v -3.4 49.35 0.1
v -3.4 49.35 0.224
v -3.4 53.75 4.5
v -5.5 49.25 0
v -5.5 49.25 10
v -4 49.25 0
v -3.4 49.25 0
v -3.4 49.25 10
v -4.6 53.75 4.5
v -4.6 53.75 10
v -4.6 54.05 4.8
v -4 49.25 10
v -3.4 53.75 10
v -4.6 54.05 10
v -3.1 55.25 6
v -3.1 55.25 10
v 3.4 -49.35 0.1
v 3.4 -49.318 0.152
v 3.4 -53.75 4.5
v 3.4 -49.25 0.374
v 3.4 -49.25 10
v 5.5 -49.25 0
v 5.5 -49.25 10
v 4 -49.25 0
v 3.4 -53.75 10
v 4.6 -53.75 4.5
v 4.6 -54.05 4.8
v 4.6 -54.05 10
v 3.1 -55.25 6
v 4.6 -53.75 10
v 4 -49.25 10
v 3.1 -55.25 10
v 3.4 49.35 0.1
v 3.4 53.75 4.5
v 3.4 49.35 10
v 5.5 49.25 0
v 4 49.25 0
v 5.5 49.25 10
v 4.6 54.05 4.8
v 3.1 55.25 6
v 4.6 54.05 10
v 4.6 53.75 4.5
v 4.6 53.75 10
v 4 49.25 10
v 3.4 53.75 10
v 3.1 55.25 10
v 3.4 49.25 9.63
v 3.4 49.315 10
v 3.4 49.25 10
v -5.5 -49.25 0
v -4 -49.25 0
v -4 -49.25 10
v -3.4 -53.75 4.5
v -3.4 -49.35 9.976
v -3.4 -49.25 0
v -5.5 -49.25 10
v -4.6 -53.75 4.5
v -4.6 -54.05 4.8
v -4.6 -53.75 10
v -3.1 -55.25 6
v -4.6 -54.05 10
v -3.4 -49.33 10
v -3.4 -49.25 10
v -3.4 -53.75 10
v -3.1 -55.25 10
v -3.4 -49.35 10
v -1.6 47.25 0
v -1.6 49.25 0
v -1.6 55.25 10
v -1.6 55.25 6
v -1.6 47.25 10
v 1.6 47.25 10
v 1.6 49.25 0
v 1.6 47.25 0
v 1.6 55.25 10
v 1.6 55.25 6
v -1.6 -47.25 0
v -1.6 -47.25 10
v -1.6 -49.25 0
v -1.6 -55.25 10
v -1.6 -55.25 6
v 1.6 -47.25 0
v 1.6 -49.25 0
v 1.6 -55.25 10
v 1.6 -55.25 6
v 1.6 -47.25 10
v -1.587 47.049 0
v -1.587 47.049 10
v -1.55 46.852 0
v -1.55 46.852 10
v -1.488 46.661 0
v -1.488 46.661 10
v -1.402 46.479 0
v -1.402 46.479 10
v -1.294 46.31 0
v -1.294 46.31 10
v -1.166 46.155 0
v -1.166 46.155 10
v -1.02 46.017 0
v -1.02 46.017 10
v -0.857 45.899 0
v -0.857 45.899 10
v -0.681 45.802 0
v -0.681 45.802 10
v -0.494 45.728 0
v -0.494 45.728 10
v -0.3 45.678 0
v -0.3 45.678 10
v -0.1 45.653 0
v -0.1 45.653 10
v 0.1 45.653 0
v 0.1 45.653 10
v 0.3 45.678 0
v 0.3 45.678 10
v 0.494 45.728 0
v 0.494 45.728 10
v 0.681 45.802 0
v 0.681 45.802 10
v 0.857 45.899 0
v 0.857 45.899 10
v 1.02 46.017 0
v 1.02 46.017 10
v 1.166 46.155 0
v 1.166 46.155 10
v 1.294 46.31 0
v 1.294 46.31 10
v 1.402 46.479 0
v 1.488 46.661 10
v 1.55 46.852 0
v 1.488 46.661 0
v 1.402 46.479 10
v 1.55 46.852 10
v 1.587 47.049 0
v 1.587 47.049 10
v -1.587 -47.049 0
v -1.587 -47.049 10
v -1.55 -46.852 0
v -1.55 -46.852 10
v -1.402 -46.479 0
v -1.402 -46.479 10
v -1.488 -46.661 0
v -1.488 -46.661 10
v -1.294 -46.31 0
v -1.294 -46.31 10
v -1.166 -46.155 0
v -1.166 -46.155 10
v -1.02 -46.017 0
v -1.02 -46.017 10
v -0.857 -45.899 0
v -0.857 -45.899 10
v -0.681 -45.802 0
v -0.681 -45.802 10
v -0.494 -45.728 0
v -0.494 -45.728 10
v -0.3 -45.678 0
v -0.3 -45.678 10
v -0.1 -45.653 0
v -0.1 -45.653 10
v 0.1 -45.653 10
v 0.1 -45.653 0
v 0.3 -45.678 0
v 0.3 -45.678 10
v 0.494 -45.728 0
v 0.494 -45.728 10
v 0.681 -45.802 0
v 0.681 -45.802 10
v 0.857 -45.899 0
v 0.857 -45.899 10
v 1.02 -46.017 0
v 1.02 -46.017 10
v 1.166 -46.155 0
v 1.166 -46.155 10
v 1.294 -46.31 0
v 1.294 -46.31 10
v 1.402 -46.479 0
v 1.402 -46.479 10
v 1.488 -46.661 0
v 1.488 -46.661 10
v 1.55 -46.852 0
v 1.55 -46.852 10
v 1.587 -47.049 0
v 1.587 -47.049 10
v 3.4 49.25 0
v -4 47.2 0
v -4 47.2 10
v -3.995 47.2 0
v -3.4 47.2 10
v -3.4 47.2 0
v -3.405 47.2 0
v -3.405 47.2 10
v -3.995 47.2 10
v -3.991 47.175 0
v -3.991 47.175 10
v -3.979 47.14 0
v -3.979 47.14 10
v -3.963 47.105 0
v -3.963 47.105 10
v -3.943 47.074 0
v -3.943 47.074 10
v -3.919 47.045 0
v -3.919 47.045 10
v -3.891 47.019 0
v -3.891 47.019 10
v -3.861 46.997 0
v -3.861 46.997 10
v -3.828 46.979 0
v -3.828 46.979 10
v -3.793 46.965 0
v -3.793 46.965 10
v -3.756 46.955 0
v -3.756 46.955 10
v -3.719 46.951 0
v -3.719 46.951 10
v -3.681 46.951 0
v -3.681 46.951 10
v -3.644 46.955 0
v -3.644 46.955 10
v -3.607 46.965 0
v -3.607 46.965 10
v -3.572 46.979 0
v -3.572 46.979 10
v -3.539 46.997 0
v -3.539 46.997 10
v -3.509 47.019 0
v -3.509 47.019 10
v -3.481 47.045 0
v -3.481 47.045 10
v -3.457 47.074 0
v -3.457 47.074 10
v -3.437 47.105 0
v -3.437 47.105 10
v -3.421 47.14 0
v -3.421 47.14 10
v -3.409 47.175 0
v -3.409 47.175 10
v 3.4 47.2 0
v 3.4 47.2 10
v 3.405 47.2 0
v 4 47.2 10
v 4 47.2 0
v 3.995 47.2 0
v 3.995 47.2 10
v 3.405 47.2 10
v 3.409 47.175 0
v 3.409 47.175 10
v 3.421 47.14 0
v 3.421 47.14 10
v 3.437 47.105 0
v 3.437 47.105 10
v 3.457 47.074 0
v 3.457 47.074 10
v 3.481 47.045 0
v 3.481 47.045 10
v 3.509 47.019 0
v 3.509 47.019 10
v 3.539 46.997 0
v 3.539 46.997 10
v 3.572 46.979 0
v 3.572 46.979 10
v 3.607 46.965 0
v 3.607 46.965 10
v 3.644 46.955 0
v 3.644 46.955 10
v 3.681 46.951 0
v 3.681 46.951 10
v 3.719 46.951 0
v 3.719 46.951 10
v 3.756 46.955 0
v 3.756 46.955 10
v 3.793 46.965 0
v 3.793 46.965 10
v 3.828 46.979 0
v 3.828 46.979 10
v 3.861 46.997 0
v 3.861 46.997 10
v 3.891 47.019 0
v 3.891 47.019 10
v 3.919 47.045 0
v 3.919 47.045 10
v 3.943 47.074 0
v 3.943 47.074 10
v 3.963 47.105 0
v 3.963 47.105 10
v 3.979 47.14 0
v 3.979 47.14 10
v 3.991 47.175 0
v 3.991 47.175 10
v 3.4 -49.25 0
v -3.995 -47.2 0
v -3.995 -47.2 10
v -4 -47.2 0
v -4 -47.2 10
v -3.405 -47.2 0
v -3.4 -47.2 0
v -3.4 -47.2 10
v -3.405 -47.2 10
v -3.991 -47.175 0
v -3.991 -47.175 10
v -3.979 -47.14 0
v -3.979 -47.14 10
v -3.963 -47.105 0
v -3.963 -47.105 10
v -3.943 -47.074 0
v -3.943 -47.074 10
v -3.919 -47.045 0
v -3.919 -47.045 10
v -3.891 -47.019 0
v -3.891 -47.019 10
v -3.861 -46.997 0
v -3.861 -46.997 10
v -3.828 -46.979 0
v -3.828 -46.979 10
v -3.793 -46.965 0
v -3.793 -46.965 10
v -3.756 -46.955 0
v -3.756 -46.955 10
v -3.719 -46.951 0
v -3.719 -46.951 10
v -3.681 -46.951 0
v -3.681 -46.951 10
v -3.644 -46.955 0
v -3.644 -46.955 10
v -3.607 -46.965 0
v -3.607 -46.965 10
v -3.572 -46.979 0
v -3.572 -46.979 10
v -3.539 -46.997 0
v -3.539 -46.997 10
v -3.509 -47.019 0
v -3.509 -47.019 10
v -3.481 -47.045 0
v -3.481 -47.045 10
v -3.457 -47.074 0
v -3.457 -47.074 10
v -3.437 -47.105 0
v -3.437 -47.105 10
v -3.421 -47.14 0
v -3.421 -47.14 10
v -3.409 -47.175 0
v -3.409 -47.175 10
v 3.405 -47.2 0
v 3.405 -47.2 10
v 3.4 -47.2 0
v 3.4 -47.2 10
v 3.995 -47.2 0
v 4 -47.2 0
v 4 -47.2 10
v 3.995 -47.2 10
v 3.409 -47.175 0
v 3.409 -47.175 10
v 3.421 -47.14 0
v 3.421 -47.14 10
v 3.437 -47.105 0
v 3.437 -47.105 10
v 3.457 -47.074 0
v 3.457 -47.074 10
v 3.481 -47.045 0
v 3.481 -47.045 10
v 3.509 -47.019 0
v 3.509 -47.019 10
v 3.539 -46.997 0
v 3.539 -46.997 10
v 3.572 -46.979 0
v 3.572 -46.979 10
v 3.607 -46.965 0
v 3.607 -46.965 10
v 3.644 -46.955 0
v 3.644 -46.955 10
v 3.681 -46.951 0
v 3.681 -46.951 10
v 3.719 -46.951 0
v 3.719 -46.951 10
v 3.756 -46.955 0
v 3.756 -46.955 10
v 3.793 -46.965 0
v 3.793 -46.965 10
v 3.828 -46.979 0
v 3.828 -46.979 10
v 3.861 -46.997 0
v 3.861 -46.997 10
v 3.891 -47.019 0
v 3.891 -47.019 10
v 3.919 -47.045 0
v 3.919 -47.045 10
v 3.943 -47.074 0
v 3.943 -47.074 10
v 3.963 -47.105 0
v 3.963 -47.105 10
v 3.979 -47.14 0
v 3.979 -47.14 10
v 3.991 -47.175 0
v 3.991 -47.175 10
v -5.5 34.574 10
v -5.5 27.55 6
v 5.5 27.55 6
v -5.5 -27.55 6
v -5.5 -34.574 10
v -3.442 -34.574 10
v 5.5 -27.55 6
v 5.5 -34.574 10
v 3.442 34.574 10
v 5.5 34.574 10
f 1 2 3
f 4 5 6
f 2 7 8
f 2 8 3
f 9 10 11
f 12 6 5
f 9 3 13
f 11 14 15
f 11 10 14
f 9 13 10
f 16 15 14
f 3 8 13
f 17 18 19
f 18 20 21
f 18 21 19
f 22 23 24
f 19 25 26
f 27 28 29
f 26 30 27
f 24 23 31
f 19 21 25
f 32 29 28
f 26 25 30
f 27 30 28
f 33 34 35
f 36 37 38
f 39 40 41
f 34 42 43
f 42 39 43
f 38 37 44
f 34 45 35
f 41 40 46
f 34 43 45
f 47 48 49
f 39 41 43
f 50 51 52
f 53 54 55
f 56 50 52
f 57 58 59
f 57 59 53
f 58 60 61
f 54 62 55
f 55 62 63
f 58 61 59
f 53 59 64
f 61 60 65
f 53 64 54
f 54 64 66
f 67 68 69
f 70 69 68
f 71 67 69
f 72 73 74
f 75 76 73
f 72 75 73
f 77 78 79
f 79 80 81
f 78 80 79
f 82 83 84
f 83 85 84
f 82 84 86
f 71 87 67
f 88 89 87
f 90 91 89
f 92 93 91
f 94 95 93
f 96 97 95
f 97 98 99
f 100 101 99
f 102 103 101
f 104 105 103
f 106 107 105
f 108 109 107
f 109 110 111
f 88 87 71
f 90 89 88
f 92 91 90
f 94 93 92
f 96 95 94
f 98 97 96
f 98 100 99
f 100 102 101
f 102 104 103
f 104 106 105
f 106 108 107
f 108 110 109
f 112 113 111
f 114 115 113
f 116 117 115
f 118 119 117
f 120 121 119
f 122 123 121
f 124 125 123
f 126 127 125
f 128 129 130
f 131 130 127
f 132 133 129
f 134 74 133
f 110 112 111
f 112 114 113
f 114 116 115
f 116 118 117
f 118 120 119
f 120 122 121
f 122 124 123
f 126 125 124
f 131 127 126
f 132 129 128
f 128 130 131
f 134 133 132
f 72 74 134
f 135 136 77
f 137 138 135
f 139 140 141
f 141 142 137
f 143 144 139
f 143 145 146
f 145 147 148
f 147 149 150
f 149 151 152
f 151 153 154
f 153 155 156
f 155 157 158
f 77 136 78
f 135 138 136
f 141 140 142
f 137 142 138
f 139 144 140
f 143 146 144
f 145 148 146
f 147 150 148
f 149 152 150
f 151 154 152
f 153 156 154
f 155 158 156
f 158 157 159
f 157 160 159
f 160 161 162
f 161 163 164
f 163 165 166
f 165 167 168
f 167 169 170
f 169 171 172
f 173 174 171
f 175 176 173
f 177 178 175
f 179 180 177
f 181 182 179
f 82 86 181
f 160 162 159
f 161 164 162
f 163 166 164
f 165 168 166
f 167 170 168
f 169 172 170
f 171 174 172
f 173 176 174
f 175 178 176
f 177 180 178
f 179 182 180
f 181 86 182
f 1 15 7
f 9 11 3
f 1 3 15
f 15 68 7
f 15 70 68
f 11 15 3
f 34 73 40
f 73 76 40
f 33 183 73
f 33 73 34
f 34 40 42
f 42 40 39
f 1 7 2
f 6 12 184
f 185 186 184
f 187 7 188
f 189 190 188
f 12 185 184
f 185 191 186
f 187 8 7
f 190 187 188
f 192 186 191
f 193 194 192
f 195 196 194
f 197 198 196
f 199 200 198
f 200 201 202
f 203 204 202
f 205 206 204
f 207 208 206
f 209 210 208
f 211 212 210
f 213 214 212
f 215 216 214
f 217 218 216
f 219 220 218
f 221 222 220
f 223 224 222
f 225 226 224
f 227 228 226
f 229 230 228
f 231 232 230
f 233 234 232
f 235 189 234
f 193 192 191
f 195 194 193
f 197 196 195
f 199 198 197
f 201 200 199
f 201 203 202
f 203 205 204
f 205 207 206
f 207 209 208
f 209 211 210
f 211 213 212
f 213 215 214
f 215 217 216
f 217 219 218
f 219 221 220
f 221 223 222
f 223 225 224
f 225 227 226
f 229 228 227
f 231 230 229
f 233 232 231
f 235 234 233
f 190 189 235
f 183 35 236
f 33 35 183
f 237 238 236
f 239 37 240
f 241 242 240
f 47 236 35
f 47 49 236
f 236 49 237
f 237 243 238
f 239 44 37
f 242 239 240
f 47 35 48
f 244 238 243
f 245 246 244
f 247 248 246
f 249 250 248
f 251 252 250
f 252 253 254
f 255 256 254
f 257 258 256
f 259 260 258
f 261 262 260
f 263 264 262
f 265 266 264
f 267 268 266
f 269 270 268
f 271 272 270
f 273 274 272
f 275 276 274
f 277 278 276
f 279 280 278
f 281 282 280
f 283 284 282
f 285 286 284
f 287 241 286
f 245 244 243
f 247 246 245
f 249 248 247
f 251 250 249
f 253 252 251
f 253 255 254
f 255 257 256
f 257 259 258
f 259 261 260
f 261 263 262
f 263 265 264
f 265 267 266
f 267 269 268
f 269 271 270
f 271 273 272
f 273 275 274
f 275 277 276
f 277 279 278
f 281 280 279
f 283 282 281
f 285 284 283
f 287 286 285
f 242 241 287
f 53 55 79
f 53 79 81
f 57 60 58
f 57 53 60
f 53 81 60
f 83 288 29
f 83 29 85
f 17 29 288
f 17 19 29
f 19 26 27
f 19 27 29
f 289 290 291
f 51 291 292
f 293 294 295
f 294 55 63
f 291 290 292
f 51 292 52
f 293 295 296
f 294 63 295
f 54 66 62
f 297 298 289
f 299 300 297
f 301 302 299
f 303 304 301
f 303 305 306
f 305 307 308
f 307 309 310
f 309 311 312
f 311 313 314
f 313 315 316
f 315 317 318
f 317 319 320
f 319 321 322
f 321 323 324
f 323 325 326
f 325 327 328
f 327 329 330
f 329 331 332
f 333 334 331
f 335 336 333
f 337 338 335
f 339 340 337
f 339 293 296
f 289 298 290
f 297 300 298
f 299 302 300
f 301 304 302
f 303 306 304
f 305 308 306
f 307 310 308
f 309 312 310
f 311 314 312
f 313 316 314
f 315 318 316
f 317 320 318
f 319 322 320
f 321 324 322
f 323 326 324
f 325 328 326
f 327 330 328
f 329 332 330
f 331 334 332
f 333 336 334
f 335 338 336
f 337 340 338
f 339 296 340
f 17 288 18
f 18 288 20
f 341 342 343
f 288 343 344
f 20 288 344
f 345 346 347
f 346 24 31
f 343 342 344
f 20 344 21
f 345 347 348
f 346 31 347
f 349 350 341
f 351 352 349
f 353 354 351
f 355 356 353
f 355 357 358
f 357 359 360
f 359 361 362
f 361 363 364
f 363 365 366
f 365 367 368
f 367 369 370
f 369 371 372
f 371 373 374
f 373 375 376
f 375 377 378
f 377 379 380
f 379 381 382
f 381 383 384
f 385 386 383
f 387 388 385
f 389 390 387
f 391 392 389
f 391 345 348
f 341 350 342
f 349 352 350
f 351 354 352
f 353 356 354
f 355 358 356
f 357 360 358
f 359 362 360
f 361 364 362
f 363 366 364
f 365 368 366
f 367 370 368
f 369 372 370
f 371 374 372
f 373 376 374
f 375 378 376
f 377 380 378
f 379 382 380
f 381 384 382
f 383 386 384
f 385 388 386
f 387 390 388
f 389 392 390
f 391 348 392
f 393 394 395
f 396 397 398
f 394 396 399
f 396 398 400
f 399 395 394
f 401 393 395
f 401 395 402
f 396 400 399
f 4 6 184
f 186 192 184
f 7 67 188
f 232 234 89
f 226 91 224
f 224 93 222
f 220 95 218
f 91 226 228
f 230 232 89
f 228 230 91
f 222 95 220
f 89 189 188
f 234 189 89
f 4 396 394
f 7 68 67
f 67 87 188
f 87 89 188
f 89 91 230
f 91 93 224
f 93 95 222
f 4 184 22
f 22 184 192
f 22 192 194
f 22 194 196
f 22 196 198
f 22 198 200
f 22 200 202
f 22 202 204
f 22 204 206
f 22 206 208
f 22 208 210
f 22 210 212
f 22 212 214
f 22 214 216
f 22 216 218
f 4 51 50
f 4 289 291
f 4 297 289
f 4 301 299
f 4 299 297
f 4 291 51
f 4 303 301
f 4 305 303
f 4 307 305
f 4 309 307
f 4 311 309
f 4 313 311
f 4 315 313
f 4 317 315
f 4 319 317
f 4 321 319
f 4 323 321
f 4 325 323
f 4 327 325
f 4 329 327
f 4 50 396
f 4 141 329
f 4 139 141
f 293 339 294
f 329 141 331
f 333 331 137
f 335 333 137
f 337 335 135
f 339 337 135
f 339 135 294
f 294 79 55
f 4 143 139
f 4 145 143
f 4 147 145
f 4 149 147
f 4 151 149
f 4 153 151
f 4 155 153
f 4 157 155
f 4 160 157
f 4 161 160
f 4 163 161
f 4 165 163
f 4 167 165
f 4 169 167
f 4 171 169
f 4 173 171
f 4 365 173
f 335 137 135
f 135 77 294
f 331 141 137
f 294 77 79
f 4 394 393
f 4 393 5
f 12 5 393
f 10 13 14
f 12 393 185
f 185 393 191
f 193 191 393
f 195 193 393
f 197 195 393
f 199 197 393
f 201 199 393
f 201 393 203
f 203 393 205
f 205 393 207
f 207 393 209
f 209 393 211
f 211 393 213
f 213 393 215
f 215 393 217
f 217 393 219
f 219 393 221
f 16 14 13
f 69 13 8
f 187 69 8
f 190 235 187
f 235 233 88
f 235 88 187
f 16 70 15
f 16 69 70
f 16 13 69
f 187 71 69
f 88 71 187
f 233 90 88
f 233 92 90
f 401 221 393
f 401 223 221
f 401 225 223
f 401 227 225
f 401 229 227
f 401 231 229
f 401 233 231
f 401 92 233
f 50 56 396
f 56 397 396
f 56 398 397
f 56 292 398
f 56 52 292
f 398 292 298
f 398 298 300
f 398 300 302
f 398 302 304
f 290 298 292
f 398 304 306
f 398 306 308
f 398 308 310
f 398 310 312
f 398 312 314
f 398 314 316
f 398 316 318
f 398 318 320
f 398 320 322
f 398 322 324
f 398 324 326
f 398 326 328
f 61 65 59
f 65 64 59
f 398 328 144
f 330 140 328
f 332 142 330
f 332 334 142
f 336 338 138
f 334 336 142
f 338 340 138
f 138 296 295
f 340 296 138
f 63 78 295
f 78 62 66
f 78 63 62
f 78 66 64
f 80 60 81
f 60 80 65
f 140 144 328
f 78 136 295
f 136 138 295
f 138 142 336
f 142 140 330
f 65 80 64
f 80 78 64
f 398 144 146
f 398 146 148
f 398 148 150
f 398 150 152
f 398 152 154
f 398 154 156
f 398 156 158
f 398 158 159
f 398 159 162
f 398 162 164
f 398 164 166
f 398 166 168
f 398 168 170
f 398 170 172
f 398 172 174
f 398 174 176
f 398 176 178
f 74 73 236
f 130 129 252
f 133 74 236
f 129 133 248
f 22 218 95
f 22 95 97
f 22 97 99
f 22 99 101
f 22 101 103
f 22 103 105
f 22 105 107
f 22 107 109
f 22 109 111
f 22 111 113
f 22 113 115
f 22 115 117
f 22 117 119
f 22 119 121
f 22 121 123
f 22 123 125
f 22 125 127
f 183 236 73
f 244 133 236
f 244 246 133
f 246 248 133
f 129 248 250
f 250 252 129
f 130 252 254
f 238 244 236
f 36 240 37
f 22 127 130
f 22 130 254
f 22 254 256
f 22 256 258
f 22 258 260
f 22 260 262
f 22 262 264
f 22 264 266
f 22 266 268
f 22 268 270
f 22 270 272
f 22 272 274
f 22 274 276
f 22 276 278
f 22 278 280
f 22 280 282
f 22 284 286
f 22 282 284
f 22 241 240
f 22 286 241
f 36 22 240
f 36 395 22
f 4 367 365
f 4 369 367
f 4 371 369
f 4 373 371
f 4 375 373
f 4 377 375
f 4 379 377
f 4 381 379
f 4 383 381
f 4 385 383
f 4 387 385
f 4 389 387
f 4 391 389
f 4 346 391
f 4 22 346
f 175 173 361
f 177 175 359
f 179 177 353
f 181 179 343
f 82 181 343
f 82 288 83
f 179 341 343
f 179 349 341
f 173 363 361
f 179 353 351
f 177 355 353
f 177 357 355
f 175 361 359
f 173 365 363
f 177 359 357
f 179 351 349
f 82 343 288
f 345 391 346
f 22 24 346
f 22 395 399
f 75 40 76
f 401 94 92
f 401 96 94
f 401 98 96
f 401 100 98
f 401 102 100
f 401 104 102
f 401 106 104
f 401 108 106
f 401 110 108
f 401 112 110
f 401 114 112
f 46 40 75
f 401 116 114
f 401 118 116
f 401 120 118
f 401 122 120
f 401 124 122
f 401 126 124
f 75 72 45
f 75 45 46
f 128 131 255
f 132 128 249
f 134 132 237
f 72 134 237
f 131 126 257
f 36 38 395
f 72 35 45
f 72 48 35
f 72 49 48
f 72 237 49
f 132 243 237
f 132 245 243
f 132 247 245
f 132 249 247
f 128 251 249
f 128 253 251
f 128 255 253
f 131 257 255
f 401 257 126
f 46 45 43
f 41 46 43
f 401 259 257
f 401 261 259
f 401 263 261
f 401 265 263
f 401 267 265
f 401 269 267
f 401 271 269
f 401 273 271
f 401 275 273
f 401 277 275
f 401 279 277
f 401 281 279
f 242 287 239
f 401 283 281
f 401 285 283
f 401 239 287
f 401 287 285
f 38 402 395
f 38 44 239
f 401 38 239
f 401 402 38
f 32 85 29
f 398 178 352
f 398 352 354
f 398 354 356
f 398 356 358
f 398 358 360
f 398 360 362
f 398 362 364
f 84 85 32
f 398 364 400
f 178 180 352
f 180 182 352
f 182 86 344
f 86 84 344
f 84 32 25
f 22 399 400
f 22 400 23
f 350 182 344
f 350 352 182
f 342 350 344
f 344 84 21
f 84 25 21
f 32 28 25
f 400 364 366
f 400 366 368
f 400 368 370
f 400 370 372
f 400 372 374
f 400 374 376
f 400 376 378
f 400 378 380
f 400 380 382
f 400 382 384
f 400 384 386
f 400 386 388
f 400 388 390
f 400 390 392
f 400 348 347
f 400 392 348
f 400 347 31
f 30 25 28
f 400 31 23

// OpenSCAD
$fn = 50;

difference() {
	union() {
		translate(v = [0, 49.25, 0]) {
			rotate(a = [90, 0, 0]) {
				difference() {
					union() {
						translate(v = [-5.5, 0, -6.0]) {
							cube(size = [11.0, 10.0, 110.5]);
						}
					}
					union() {
						translate(v = [0, 0, 0]) {
							rotate(a = [0, 0, 0]) {
								difference() {
									union() {
										translate(v = [0, 10.1, 0]) {
											rotate(a = [90, 0, 0]) {
												linear_extrude(height = 10.2) {
													polygon(points = [[-3.1, -6.1], [-3.1, -6.0], [-4.6, -4.8], [-4.6, -4.5], [-3.4, -4.5], [-3.4, 0], [-5.6, 0], [-5.6, -6.1]]);
												}
											}
										}
										translate(v = [0, 10.1, 0]) {
											rotate(a = [90, 0, 0]) {
												linear_extrude(height = 10.2) {
													polygon(points = [[3.1, -6.1], [3.1, -6.0], [4.6, -4.8], [4.6, -4.5], [3.4, -4.5], [3.4, 0], [5.6, 0], [5.6, -6.1]]);
												}
											}
										}
										translate(v = [-1.5999999999999999, -0.1, -6.1]) {
											cube(size = [3.1999999999999997, 10.2, 8.1]);
										}
										translate(v = [0, 10.1, 2.0]) {
											rotate(a = [90, 0, 0]) {
												cylinder(h = 10.2, r = 1.5999999999999999);
											}
										}
									}
									union();
								}
							}
						}
						translate(v = [0, 0, 98.5]) {
							rotate(a = [0, 180, 0]) {
								difference() {
									union() {
										translate(v = [0, 10.1, 0]) {
											rotate(a = [90, 0, 0]) {
												linear_extrude(height = 10.2) {
													polygon(points = [[-3.1, -6.1], [-3.1, -6.0], [-4.6, -4.8], [-4.6, -4.5], [-3.4, -4.5], [-3.4, 0], [-5.6, 0], [-5.6, -6.1]]);
												}
											}
										}
										translate(v = [0, 10.1, 0]) {
											rotate(a = [90, 0, 0]) {
												linear_extrude(height = 10.2) {
													polygon(points = [[3.1, -6.1], [3.1, -6.0], [4.6, -4.8], [4.6, -4.5], [3.4, -4.5], [3.4, 0], [5.6, 0], [5.6, -6.1]]);
												}
											}
										}
										translate(v = [-1.5999999999999999, -0.1, -6.1]) {
											cube(size = [3.1999999999999997, 10.2, 8.1]);
										}
										translate(v = [0, 10.1, 2.0]) {
											rotate(a = [90, 0, 0]) {
												cylinder(h = 10.2, r = 1.5999999999999999);
											}
										}
									}
									union();
								}
							}
						}
						translate(v = [-5.6, 0, 0]) {
							rotate(a = [90, 0, 90]) {
								linear_extrude(height = 11.2) {
									polygon(points = [[-0.1, -6.1], [6.1, -6.1], [0, 0.0], [-0.1, 0.0]]);
								}
							}
						}
						translate(v = [0, 10.1, 0]) {
							rotate(a = [90, 0, 0]) {
								linear_extrude(height = 10.2) {
									polygon(points = [[-3.4, -0.1], [-4.0, -0.1], [-4.0, 2.05], [-3.4, 2.05]]);
								}
							}
						}
						translate(v = [-3.6999999999999997, 10.1, 2.0]) {
							rotate(a = [90, 0, 0]) {
								cylinder(h = 10.2, r = 0.3);
							}
						}
						translate(v = [0, 10.1, 0]) {
							rotate(a = [90, 0, 0]) {
								linear_extrude(height = 10.2) {
									polygon(points = [[3.4, -0.1], [4.0, -0.1], [4.0, 2.05], [3.4, 2.05]]);
								}
							}
						}
						translate(v = [3.6999999999999997, 10.1, 2.0]) {
							rotate(a = [90, 0, 0]) {
								cylinder(h = 10.2, r = 0.3);
							}
						}
						translate(v = [-5.6, 0, 0]) {
							rotate(a = [90, 0, 90]) {
								linear_extrude(height = 11.2) {
									polygon(points = [[-0.1, 104.6], [6.1, 104.6], [0, 98.5], [-0.1, 98.5]]);
								}
							}
						}
						translate(v = [0, 10.1, 0]) {
							rotate(a = [90, 0, 0]) {
								linear_extrude(height = 10.2) {
									polygon(points = [[-3.4, 98.6], [-4.0, 98.6], [-4.0, 96.45], [-3.4, 96.45]]);
								}
							}
						}
						translate(v = [-3.6999999999999997, 10.1, 96.5]) {
							rotate(a = [90, 0, 0]) {
								cylinder(h = 10.2, r = 0.3);
							}
						}
						translate(v = [0, 10.1, 0]) {
							rotate(a = [90, 0, 0]) {
								linear_extrude(height = 10.2) {
									polygon(points = [[3.4, 98.6], [4.0, 98.6], [4.0, 96.45], [3.4, 96.45]]);
								}
							}
						}
						translate(v = [3.6999999999999997, 10.1, 96.5]) {
							rotate(a = [90, 0, 0]) {
								cylinder(h = 10.2, r = 0.3);
							}
						}
						translate(v = [-5.6, 0, 0]) {
							rotate(a = [90, 0, 90]) {
								linear_extrude(height = 11.2) {
									polygon(points = [[10.1, 14.5], [10.1, 84.0], [6.0, 76.8], [6.0, 21.7]]);
								}
							}
						}
					}
				}
			}
		}
	}
	union();
}
